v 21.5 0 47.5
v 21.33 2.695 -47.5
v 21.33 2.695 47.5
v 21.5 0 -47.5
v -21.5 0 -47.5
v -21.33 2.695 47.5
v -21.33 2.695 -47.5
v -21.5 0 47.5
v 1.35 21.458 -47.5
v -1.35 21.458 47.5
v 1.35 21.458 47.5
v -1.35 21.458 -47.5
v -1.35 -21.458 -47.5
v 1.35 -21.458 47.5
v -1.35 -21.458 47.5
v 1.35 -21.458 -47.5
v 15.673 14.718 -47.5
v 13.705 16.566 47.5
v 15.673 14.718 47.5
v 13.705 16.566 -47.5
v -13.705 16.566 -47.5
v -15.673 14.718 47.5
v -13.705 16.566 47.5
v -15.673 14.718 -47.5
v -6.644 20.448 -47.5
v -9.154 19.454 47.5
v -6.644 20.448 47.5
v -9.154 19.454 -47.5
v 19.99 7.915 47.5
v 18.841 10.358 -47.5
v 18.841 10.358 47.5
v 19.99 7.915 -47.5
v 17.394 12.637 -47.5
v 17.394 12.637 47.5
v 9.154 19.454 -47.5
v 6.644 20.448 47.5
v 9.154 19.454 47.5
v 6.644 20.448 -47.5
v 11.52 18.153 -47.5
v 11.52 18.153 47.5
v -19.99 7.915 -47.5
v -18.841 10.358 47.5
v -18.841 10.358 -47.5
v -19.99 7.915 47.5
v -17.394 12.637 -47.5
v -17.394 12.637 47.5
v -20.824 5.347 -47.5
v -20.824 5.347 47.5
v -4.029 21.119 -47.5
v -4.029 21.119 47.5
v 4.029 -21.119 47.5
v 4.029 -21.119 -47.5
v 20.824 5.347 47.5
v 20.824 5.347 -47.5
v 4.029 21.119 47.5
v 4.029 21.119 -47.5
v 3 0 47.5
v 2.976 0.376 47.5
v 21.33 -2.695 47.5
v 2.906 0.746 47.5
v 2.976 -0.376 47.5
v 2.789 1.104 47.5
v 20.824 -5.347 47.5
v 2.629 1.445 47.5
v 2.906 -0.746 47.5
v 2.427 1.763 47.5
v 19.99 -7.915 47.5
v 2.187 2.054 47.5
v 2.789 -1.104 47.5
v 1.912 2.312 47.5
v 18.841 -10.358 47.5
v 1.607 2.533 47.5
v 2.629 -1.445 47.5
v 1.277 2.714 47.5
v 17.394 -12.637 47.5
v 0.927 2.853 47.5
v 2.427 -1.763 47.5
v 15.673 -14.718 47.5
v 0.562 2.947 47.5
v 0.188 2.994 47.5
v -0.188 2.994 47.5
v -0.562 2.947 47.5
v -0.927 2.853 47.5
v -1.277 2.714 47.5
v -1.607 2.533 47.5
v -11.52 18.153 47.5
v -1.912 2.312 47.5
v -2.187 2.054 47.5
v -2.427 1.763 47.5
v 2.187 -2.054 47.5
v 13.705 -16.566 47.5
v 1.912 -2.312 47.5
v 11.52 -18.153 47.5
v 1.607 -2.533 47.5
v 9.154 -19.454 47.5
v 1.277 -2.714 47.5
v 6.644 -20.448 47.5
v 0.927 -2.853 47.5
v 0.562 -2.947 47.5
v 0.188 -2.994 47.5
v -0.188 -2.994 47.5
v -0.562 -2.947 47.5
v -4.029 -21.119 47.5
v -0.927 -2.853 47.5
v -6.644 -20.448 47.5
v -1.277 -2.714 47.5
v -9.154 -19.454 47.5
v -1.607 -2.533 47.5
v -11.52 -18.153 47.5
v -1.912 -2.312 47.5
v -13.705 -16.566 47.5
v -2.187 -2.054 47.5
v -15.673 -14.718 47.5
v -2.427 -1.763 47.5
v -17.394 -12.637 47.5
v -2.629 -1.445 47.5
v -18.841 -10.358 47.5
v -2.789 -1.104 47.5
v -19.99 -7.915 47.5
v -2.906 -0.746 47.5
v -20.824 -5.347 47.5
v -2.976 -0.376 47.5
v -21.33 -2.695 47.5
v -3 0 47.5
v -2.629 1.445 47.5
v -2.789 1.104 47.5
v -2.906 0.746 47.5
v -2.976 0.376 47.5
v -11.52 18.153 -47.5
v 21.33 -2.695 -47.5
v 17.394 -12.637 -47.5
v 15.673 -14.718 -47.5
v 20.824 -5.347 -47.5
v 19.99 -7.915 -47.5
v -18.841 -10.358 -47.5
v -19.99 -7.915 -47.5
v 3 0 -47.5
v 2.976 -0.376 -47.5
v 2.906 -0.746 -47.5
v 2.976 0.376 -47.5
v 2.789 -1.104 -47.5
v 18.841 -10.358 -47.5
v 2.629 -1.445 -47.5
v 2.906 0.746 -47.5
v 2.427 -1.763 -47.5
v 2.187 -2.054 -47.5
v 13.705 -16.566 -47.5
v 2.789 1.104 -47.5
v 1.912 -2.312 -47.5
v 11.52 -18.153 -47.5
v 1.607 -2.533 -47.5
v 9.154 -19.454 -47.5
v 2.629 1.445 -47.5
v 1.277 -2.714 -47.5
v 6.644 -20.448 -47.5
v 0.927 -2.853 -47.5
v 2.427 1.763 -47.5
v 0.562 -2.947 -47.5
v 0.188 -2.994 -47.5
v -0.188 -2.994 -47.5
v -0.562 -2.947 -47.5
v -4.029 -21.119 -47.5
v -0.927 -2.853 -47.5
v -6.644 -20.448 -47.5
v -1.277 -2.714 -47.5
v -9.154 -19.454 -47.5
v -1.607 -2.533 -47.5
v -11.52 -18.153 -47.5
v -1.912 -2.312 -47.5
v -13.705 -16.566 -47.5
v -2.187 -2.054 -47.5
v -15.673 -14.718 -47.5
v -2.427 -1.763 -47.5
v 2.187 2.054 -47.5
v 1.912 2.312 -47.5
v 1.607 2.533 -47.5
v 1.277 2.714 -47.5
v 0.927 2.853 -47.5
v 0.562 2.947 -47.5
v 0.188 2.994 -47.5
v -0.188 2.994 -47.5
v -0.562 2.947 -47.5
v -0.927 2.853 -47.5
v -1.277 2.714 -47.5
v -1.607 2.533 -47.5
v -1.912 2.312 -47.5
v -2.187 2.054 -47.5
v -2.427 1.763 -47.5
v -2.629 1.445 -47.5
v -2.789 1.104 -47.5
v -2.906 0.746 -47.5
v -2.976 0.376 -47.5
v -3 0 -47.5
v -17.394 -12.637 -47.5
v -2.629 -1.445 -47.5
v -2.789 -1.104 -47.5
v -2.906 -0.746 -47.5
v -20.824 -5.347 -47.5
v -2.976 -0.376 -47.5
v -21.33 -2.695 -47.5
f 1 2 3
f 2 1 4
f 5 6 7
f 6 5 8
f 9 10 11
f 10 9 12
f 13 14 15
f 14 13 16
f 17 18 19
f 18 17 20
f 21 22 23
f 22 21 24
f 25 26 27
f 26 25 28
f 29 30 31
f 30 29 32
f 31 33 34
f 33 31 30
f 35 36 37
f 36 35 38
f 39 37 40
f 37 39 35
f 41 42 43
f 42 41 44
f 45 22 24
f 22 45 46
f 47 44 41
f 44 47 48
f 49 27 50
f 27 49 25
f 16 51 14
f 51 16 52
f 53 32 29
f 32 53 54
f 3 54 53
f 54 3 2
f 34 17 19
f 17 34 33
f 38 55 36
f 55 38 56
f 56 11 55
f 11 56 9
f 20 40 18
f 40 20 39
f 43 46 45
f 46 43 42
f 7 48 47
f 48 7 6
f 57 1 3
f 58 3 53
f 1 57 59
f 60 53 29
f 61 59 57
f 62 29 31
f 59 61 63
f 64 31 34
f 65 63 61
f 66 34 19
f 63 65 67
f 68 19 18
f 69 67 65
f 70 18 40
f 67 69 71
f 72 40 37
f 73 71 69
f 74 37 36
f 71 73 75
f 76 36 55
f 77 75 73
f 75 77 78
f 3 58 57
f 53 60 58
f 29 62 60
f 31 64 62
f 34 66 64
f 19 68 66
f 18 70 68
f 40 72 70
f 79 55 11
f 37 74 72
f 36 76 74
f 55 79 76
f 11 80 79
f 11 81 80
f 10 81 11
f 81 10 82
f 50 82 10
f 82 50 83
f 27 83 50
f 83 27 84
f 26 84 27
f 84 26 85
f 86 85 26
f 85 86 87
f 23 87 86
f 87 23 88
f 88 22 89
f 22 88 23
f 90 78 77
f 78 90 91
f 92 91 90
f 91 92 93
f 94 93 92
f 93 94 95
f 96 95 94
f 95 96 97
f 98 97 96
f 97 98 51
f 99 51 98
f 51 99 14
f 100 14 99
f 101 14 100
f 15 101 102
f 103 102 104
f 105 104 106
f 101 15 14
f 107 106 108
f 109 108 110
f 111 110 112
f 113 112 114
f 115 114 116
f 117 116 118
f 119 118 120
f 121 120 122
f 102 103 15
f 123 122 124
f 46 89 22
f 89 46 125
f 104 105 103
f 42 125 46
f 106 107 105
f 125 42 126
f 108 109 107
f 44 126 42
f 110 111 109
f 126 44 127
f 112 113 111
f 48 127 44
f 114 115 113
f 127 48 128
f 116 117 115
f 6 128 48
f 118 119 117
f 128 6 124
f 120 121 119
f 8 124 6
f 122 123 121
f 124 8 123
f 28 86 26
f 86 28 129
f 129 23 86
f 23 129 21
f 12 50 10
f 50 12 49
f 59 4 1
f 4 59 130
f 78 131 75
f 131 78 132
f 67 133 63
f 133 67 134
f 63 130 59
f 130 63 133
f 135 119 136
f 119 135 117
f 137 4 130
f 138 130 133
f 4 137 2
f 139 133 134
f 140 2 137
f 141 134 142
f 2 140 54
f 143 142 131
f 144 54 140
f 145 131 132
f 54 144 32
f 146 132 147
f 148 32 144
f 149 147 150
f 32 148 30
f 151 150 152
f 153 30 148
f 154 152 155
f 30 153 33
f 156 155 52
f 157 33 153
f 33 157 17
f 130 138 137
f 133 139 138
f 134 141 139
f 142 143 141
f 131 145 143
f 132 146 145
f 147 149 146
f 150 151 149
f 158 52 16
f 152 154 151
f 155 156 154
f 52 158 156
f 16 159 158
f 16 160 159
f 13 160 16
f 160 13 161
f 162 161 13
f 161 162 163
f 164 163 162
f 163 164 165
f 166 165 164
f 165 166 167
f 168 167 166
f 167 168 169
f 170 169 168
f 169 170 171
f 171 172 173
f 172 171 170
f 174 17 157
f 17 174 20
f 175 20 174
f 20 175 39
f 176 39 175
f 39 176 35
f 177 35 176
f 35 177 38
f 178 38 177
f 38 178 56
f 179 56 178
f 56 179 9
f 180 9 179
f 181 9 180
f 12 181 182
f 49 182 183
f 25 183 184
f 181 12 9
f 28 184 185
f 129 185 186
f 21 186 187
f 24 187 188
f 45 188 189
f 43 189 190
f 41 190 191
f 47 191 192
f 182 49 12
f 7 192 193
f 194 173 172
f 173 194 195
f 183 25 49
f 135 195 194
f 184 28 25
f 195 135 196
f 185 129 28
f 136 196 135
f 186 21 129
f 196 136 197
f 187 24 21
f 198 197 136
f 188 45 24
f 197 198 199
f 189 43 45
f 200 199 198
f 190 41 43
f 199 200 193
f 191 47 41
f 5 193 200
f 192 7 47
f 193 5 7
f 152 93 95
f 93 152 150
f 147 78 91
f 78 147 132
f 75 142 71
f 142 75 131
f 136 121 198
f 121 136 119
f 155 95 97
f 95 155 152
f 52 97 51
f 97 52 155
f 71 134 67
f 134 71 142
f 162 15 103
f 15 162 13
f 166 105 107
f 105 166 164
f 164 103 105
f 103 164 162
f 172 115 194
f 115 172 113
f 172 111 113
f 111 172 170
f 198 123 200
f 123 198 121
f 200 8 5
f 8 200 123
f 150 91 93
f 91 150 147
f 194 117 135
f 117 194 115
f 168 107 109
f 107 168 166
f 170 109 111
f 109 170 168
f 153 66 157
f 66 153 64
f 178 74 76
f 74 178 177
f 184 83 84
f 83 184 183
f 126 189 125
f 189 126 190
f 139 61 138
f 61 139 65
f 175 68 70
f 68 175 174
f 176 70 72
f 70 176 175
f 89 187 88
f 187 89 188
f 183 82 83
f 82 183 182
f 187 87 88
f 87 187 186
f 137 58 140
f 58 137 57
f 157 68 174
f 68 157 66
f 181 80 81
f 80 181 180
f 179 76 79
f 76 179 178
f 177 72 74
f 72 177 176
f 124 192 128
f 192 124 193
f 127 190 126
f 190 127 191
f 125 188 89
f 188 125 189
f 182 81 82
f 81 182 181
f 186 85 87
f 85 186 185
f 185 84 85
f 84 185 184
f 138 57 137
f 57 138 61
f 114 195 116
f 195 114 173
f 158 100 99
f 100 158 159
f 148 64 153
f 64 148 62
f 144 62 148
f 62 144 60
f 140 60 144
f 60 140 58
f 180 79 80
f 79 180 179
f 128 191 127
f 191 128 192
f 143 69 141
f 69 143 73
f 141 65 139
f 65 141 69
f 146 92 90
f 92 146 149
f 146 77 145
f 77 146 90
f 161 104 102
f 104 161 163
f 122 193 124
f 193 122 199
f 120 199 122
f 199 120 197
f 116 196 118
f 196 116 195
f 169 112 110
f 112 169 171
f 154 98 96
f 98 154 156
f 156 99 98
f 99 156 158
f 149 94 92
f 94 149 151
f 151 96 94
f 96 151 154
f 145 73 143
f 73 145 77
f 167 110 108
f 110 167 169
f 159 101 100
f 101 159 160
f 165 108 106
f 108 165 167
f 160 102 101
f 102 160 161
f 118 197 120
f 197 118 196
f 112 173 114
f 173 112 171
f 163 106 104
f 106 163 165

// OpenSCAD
$fn = 50;


difference() {
	union() {
		translate(v = [0, 0, -47.5000000000]) {
			cylinder(h = 95, r = 21.5000000000);
		}
	}
	union() {
		translate(v = [0, 0, -100.0000000000]) {
			cylinder(h = 200, r = 3);
		}
	}
}
